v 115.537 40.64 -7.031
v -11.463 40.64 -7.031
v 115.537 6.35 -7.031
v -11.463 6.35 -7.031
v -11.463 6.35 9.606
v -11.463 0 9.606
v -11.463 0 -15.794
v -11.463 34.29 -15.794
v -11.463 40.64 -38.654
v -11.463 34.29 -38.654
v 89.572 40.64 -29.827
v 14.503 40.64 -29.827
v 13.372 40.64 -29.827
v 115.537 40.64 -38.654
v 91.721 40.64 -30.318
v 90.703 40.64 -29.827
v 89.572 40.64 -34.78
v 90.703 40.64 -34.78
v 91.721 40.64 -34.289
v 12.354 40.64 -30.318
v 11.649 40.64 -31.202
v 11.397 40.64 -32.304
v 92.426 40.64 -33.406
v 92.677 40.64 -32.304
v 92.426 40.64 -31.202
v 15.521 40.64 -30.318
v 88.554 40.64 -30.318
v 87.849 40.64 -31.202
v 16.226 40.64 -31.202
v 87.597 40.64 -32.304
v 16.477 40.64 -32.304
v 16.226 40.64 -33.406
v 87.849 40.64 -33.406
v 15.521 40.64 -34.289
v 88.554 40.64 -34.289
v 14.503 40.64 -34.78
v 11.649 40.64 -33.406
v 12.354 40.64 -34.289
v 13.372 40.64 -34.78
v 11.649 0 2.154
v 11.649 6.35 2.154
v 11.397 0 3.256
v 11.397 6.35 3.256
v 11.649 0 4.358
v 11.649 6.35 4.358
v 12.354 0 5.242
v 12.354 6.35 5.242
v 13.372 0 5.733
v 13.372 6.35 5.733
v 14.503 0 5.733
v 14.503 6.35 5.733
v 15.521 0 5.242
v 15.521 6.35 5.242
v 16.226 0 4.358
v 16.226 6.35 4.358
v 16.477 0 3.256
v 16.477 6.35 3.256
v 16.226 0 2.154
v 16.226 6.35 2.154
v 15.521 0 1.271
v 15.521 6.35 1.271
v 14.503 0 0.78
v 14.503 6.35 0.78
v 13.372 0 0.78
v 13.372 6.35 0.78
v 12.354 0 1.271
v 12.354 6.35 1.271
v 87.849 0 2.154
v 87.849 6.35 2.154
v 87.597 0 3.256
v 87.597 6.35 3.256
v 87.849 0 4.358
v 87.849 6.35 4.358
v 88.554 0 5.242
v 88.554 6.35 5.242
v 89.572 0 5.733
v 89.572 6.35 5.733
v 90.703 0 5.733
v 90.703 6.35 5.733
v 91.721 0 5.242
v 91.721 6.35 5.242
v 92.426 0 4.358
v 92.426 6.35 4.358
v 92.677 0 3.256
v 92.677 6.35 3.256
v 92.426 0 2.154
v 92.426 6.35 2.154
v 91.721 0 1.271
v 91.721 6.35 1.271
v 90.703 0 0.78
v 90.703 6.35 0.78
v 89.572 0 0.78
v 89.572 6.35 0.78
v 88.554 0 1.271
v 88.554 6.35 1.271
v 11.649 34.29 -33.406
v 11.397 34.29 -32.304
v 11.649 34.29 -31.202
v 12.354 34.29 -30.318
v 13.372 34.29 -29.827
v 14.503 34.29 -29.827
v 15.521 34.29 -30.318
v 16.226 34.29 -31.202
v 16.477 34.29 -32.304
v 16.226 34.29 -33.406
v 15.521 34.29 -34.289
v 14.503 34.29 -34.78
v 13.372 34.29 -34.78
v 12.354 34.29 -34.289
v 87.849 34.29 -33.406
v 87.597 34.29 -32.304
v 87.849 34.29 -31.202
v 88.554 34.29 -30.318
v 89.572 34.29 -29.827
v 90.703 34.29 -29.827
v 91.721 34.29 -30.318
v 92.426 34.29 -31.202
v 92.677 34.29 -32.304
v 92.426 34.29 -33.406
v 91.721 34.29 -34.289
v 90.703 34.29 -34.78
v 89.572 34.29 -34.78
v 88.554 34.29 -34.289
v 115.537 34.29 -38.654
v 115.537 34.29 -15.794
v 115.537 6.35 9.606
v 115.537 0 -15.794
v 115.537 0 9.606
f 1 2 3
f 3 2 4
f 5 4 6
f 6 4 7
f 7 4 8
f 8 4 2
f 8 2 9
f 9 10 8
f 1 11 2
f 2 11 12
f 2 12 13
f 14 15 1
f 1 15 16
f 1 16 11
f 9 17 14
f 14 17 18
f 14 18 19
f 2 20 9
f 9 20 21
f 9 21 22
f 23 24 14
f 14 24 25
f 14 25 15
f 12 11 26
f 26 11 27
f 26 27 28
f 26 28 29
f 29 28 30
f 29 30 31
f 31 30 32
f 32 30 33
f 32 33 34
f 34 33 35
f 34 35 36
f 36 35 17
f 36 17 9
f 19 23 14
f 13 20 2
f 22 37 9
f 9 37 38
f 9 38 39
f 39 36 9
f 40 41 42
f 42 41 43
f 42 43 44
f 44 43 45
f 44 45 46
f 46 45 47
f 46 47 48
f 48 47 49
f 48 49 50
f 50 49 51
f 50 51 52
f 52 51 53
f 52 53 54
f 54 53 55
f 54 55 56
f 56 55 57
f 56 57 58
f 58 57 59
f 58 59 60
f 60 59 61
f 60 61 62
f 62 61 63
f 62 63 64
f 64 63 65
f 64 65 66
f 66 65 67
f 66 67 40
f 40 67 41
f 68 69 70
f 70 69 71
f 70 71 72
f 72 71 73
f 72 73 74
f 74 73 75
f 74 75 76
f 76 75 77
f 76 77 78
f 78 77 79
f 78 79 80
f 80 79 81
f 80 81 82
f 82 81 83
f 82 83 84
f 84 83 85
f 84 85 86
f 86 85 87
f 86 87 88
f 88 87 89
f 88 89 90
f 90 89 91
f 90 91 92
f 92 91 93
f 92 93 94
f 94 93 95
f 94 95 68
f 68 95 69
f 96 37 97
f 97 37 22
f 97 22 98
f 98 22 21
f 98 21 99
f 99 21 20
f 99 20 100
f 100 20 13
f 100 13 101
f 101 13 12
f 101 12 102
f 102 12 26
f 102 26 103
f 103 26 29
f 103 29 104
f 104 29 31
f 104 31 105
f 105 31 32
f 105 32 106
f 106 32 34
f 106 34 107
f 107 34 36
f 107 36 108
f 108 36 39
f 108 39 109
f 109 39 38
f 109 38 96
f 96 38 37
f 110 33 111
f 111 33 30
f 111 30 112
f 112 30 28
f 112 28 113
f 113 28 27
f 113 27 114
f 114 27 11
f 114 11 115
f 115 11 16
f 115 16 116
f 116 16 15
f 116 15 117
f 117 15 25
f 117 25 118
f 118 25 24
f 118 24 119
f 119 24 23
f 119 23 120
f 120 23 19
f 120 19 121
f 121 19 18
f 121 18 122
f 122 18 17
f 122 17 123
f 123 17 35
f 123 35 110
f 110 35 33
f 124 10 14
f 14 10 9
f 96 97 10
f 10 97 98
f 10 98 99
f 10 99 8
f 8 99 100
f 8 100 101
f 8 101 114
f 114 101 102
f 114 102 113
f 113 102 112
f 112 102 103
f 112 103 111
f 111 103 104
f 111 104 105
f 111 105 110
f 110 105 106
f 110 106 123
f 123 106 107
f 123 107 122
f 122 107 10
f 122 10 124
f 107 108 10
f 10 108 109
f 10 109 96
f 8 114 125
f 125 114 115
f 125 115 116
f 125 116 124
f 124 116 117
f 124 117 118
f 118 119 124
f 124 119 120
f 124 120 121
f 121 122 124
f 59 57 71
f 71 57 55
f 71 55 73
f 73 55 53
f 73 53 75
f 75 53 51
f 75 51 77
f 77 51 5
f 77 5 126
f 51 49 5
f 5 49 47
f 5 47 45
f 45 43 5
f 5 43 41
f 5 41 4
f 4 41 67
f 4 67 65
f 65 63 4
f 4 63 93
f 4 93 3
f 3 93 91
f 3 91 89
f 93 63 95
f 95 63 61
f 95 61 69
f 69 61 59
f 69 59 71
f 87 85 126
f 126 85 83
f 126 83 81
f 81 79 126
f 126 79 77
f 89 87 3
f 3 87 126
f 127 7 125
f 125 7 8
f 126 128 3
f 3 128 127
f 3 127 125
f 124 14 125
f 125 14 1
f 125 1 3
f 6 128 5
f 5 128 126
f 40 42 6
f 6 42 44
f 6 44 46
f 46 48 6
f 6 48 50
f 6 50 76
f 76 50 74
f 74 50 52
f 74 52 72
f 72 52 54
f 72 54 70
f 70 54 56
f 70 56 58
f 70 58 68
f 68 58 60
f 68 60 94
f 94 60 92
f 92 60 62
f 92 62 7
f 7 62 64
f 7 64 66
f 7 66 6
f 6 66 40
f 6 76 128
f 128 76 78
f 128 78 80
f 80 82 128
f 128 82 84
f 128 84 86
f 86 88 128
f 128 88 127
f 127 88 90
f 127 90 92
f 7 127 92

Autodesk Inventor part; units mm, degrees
ref_plane "YZ Plane" through (0, 0, 0) normal (1, 0, 0) x (0, 1, 0)
ref_plane "XZ Plane" through (0, 0, 0) normal (0, 1, 0) x (-1, 0, 0)
ref_plane "XY Plane" through (0, 0, 0) normal (0, 0, 1) x (1, 0, 0)
sketch "Sketch1" plane through (0, 0, 0) normal (0, 1, 0) x (-1, 0, 0)
  line L0 (11.4626, 9.6064) -> (-115.5374, 9.6064)
  line L1 (-115.5374, 9.6064) -> (-115.5374, -15.7936)
  line L2 (-115.5374, -15.7936) -> (11.4626, -15.7936)
  line L3 (11.4626, -15.7936) -> (11.4626, 9.6064)
  point P0 (0, 0)
  dimension "d0" = 25.4
  dimension "d1" = 127
extrude "Extrusion1" add sketch "Sketch1" along normal blind 6.35
sketch "Sketch2" plane through (0, 6.35, 0) normal (0, 1, 0) x (1, 0, 0)
  line L0 (115.5374, 15.7936) -> (-11.4626, 15.7936) projected
  line L1 (-11.4626, 15.7936) -> (-11.4626, -9.6064) projected
  line L2 (115.5374, -9.6064) -> (115.5374, 15.7936) projected
  line L3 (-11.4626, 15.7936) -> (115.5374, 15.7936)
  line L4 (115.5374, 15.7936) -> (115.5374, 3.0936)
  line L5 (115.5374, 3.0936) -> (-11.4626, 3.0936)
  line L6 (-11.4626, 3.0936) -> (-11.4626, 15.7936)
  point P0 (0, 0)
  dimension "d31" = 12.7
extrude "Extrusion2" add sketch "Sketch2" along normal blind 27.94
sketch "Sketch3" plane through (0, 34.29, 0) normal (0, 1, 0) x (1, 0, 0)
  line L0 (-11.4626, 3.0936) -> (115.5374, 3.0936) projected
  line L1 (-11.4626, 15.7936) -> (-11.4626, 3.0936) projected
  line L2 (115.5374, 15.7936) -> (-11.4626, 15.7936) projected
  line L3 (115.5374, 3.0936) -> (115.5374, 15.7936) projected
  line L4 (-11.4626, 3.0936) -> (115.5374, 3.0936)
  line L5 (115.5374, 3.0936) -> (115.5374, 38.6536)
  line L6 (115.5374, 38.6536) -> (-11.4626, 38.6536)
  line L7 (-11.4626, 38.6536) -> (-11.4626, 3.0936)
  point P0 (0, 0)
  dimension "d6" = 35.56
extrude "Extrusion3" add sketch "Sketch3" along normal blind 6.35
sketch "Sketch4" plane through (0, 40.64, 0) normal (0, 1, 0) x (1, 0, 0)
  line L0 (115.5374, 38.6536) -> (-11.4626, 38.6536) projected
  line L1 (-11.4626, 38.6536) -> (-11.4626, 3.0936) projected
  point P0 (0, 0)
  point P1 (13.9374, 32.3036)
  point P2 (90.1374, 32.3036)
  dimension "d9" = 0
  dimension "d10" = 6.35
  dimension "d11" = 76.2
  dimension "d12" = 25.4
hole "Hole1" at (13.9374, 40.64, -32.3036) at (90.1374, 40.64, -32.3036) direction (0, -1, 0) diameter 5.08 end through all
sketch "Sketch5" plane through (0, 6.35, 0) normal (0, 1, 0) x (1, 0, 0)
  line L0 (-11.4626, -9.6064) -> (115.5374, -9.6064) projected
  line L1 (115.5374, -9.6064) -> (115.5374, 3.0936) projected
  point P0 (0, 0)
  point P1 (13.9374, -3.2564)
  point P2 (90.1374, -3.2564)
  dimension "d20" = 0
  dimension "d21" = 6.35
  dimension "d22" = 25.4
  dimension "d23" = 76.2
hole "Hole2" at (13.9374, 6.35, 3.2564) at (90.1374, 6.35, 3.2564) direction (0, -1, 0) diameter 5.08 end through all
sketch "Sketch7" plane through (0, 40.64, 0) normal (0, 1, 0) x (1, 0, 0)
  line L0 (-11.4626, 3.0936) -> (115.5374, 3.0936) projected
  line L1 (-11.4626, 38.6536) -> (-11.4626, 3.0936) projected
  line L2 (115.5374, 3.0936) -> (115.5374, 38.6536) projected
  line L3 (-11.4626, 3.0936) -> (115.5374, 3.0936)
  line L4 (115.5374, 3.0936) -> (115.5374, 7.0306)
  line L5 (115.5374, 7.0306) -> (-11.4626, 7.0306)
  line L6 (-11.4626, 7.0306) -> (-11.4626, 3.0936)
  point P0 (0, 0)
  dimension "d35" = 3.937
extrude "Extrusion5" cut sketch "Sketch7" against normal blind 34.29
properties part number "EBoardStandoffs"
